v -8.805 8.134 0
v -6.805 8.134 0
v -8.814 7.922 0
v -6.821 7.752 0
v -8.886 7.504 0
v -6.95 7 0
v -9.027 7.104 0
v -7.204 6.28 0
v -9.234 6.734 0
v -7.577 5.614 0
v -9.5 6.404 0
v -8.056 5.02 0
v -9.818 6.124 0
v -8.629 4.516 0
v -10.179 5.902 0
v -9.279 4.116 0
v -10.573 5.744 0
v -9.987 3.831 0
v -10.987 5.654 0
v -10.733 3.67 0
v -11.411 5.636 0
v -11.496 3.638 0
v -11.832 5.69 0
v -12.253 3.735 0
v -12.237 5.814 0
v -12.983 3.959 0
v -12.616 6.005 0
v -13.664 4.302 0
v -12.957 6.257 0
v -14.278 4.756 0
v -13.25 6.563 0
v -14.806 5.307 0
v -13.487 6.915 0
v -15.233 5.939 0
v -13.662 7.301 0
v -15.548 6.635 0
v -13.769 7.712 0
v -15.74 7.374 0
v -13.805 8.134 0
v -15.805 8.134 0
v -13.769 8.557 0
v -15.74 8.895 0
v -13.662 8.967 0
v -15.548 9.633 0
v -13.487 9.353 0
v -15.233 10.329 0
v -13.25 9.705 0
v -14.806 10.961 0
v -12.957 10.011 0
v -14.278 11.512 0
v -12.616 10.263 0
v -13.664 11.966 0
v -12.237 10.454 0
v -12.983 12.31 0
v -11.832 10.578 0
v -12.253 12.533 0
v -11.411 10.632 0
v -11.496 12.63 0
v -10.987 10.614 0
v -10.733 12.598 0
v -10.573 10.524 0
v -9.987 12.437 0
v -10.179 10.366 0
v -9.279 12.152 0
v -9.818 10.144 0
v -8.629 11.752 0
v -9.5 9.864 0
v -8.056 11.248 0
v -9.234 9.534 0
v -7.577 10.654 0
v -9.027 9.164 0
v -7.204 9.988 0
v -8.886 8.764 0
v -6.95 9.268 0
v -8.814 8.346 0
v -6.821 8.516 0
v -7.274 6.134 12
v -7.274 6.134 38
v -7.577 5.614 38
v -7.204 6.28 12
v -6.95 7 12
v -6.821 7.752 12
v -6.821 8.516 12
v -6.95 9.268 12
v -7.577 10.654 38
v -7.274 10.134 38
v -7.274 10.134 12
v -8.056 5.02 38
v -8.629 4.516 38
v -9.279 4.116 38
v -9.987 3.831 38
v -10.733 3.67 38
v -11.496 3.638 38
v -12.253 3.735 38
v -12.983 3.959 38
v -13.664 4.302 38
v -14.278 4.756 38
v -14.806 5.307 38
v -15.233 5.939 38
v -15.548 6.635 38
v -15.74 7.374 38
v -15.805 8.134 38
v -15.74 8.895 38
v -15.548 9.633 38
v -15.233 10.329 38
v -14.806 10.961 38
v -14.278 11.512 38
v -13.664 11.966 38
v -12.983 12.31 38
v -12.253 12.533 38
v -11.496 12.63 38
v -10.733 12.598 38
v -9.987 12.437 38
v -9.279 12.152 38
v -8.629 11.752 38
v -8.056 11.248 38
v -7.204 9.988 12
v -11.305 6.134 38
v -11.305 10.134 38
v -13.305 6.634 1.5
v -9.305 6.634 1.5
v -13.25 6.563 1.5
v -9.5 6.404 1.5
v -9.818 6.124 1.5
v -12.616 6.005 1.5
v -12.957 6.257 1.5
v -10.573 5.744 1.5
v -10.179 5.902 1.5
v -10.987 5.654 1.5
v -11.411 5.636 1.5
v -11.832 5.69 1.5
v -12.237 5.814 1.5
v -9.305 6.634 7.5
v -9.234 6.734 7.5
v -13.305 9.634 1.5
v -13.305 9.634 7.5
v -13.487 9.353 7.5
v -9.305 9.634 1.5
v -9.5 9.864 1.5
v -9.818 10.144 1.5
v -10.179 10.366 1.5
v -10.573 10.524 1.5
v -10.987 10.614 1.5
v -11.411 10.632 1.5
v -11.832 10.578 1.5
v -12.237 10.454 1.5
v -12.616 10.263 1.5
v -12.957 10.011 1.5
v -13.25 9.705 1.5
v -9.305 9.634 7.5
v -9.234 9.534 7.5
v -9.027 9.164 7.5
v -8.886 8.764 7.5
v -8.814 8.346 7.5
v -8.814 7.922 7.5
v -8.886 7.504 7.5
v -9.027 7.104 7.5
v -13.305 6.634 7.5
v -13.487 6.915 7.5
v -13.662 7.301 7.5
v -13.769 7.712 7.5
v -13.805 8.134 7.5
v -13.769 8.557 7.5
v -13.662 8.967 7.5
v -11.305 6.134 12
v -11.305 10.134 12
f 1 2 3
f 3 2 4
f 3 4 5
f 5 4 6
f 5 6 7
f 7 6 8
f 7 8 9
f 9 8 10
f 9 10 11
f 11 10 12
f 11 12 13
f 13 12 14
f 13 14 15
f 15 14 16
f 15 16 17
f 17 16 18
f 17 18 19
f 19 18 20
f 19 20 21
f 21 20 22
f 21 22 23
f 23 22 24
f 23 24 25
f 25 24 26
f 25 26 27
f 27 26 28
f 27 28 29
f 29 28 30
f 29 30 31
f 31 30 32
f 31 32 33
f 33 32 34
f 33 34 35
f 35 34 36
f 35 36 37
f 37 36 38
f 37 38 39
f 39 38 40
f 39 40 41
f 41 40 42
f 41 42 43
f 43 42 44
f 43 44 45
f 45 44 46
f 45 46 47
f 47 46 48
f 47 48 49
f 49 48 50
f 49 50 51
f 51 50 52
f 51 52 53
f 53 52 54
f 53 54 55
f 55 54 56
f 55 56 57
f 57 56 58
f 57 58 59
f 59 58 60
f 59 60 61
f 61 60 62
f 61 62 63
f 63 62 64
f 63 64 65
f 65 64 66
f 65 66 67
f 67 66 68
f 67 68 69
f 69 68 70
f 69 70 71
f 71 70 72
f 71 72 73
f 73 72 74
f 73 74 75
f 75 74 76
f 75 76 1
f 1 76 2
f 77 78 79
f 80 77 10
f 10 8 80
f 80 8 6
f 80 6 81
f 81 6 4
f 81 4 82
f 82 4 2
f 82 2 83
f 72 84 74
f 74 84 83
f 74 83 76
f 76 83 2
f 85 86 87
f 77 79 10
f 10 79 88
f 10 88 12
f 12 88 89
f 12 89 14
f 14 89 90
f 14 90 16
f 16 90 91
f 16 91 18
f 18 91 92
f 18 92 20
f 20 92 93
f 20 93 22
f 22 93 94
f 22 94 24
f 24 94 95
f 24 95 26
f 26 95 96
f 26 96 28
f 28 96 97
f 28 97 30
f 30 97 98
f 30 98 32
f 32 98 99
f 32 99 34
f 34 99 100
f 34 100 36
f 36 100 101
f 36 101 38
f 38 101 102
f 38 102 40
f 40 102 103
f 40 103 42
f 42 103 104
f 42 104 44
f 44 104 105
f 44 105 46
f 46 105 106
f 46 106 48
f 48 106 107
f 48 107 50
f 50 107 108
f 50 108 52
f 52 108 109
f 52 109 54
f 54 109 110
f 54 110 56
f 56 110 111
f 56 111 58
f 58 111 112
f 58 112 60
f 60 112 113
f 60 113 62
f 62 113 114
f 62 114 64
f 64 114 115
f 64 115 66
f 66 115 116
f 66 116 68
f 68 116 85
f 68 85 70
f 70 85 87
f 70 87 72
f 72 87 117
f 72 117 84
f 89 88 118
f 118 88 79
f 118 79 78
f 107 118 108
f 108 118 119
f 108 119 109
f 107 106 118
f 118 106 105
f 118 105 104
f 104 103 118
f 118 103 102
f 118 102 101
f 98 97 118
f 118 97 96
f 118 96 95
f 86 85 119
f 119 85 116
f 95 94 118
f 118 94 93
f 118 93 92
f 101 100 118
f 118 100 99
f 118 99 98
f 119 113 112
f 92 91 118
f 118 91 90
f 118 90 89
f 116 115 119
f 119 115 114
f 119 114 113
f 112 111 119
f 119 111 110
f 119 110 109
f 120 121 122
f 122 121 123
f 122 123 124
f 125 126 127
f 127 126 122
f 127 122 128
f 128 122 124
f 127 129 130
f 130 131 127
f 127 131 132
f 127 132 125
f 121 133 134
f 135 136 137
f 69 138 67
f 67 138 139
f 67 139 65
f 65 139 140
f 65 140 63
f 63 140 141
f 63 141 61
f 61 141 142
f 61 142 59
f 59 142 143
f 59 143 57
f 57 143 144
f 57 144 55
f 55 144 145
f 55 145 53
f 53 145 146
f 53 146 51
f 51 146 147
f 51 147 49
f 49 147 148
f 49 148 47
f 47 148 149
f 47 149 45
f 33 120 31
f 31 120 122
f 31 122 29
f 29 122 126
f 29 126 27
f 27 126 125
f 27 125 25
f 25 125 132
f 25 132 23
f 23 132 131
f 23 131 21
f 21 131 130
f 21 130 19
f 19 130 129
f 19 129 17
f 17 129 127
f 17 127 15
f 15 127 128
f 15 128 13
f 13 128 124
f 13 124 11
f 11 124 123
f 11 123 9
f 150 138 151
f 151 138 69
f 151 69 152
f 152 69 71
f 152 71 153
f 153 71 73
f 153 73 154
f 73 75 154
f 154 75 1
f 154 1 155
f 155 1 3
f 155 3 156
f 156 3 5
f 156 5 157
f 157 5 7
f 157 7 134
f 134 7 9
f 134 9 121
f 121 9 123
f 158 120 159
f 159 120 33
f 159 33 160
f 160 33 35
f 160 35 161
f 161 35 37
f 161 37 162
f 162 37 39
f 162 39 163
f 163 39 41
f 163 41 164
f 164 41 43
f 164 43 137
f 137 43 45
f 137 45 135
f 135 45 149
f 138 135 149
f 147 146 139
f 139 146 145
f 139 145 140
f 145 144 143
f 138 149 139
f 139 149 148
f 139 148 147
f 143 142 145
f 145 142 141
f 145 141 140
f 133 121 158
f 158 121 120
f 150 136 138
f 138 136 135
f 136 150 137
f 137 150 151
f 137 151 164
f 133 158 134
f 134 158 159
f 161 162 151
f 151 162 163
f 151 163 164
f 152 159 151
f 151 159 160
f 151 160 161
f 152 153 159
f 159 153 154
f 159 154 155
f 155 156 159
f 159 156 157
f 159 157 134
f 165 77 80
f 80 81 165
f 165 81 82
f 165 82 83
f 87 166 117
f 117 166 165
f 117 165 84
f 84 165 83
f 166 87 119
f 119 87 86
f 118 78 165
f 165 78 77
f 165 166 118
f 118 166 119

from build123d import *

# Parameters (mm, degrees)
SKETCH1_R           = 4.5
BOSS_EXTRUDE3_DEPTH = 38
CUT_EXTRUDE2_DEPTH  = 1.5
CUT_EXTRUDE3_DEPTH  = 7.5
SKETCH6_W           = 7.945575041
SKETCH6_H           = 4
CUT_EXTRUDE4_DEPTH  = 26


with BuildPart() as part:
    # Sketch1 → Boss-Extrude3 (new body)
    with BuildSketch(Plane.XY):
        with Locations((-11.304886055, 8.134003381)):
            Circle(SKETCH1_R)
    extrude(amount=BOSS_EXTRUDE3_DEPTH)

    # Sketch3 → Cut-Extrude2 (cut)
    with BuildSketch(Plane.XY):
        with BuildLine():
            Line((-13.304886055, 9.634003381), (-9.304886055, 9.634003381))
            ThreePointArc((-9.304886055, 9.634003381), (-11.304886055, 10.634003381), (-13.304886055, 9.634003381))
        make_face()
        with BuildLine():
            Line((-9.304886055, 6.634003381), (-13.304886055, 6.634003381))
            ThreePointArc((-13.304886055, 6.634003381), (-11.304886055, 5.634003381), (-9.304886055, 6.634003381))
        make_face()
    extrude(amount=CUT_EXTRUDE2_DEPTH, mode=Mode.SUBTRACT)

    # Sketch3<4> → Cut-Extrude3 (cut)
    with BuildSketch(Plane.XY):
        with BuildLine():
            ThreePointArc((-8.804886055, 8.134003381), (-8.93317781, 8.924572796), (-9.304886055, 9.634003381))
            Line((-9.304886055, 9.634003381), (-13.304886055, 9.634003381))
            ThreePointArc((-13.304886055, 9.634003381), (-13.804886055, 8.134003381), (-13.304886055, 6.634003381))
            Line((-13.304886055, 6.634003381), (-9.304886055, 6.634003381))
            ThreePointArc((-9.304886055, 6.634003381), (-8.93317781, 7.343433966), (-8.804886055, 8.134003381))
        make_face()
    extrude(amount=CUT_EXTRUDE3_DEPTH, mode=Mode.SUBTRACT)

    # Sketch6 → Cut-Extrude4 (cut)
    with BuildSketch(Plane.XY.offset(38)):
        with Locations((-7.332098535, 8.134003381)):
            Rectangle(SKETCH6_W, SKETCH6_H)
    extrude(amount=-CUT_EXTRUDE4_DEPTH, mode=Mode.SUBTRACT)


solid = part.part
